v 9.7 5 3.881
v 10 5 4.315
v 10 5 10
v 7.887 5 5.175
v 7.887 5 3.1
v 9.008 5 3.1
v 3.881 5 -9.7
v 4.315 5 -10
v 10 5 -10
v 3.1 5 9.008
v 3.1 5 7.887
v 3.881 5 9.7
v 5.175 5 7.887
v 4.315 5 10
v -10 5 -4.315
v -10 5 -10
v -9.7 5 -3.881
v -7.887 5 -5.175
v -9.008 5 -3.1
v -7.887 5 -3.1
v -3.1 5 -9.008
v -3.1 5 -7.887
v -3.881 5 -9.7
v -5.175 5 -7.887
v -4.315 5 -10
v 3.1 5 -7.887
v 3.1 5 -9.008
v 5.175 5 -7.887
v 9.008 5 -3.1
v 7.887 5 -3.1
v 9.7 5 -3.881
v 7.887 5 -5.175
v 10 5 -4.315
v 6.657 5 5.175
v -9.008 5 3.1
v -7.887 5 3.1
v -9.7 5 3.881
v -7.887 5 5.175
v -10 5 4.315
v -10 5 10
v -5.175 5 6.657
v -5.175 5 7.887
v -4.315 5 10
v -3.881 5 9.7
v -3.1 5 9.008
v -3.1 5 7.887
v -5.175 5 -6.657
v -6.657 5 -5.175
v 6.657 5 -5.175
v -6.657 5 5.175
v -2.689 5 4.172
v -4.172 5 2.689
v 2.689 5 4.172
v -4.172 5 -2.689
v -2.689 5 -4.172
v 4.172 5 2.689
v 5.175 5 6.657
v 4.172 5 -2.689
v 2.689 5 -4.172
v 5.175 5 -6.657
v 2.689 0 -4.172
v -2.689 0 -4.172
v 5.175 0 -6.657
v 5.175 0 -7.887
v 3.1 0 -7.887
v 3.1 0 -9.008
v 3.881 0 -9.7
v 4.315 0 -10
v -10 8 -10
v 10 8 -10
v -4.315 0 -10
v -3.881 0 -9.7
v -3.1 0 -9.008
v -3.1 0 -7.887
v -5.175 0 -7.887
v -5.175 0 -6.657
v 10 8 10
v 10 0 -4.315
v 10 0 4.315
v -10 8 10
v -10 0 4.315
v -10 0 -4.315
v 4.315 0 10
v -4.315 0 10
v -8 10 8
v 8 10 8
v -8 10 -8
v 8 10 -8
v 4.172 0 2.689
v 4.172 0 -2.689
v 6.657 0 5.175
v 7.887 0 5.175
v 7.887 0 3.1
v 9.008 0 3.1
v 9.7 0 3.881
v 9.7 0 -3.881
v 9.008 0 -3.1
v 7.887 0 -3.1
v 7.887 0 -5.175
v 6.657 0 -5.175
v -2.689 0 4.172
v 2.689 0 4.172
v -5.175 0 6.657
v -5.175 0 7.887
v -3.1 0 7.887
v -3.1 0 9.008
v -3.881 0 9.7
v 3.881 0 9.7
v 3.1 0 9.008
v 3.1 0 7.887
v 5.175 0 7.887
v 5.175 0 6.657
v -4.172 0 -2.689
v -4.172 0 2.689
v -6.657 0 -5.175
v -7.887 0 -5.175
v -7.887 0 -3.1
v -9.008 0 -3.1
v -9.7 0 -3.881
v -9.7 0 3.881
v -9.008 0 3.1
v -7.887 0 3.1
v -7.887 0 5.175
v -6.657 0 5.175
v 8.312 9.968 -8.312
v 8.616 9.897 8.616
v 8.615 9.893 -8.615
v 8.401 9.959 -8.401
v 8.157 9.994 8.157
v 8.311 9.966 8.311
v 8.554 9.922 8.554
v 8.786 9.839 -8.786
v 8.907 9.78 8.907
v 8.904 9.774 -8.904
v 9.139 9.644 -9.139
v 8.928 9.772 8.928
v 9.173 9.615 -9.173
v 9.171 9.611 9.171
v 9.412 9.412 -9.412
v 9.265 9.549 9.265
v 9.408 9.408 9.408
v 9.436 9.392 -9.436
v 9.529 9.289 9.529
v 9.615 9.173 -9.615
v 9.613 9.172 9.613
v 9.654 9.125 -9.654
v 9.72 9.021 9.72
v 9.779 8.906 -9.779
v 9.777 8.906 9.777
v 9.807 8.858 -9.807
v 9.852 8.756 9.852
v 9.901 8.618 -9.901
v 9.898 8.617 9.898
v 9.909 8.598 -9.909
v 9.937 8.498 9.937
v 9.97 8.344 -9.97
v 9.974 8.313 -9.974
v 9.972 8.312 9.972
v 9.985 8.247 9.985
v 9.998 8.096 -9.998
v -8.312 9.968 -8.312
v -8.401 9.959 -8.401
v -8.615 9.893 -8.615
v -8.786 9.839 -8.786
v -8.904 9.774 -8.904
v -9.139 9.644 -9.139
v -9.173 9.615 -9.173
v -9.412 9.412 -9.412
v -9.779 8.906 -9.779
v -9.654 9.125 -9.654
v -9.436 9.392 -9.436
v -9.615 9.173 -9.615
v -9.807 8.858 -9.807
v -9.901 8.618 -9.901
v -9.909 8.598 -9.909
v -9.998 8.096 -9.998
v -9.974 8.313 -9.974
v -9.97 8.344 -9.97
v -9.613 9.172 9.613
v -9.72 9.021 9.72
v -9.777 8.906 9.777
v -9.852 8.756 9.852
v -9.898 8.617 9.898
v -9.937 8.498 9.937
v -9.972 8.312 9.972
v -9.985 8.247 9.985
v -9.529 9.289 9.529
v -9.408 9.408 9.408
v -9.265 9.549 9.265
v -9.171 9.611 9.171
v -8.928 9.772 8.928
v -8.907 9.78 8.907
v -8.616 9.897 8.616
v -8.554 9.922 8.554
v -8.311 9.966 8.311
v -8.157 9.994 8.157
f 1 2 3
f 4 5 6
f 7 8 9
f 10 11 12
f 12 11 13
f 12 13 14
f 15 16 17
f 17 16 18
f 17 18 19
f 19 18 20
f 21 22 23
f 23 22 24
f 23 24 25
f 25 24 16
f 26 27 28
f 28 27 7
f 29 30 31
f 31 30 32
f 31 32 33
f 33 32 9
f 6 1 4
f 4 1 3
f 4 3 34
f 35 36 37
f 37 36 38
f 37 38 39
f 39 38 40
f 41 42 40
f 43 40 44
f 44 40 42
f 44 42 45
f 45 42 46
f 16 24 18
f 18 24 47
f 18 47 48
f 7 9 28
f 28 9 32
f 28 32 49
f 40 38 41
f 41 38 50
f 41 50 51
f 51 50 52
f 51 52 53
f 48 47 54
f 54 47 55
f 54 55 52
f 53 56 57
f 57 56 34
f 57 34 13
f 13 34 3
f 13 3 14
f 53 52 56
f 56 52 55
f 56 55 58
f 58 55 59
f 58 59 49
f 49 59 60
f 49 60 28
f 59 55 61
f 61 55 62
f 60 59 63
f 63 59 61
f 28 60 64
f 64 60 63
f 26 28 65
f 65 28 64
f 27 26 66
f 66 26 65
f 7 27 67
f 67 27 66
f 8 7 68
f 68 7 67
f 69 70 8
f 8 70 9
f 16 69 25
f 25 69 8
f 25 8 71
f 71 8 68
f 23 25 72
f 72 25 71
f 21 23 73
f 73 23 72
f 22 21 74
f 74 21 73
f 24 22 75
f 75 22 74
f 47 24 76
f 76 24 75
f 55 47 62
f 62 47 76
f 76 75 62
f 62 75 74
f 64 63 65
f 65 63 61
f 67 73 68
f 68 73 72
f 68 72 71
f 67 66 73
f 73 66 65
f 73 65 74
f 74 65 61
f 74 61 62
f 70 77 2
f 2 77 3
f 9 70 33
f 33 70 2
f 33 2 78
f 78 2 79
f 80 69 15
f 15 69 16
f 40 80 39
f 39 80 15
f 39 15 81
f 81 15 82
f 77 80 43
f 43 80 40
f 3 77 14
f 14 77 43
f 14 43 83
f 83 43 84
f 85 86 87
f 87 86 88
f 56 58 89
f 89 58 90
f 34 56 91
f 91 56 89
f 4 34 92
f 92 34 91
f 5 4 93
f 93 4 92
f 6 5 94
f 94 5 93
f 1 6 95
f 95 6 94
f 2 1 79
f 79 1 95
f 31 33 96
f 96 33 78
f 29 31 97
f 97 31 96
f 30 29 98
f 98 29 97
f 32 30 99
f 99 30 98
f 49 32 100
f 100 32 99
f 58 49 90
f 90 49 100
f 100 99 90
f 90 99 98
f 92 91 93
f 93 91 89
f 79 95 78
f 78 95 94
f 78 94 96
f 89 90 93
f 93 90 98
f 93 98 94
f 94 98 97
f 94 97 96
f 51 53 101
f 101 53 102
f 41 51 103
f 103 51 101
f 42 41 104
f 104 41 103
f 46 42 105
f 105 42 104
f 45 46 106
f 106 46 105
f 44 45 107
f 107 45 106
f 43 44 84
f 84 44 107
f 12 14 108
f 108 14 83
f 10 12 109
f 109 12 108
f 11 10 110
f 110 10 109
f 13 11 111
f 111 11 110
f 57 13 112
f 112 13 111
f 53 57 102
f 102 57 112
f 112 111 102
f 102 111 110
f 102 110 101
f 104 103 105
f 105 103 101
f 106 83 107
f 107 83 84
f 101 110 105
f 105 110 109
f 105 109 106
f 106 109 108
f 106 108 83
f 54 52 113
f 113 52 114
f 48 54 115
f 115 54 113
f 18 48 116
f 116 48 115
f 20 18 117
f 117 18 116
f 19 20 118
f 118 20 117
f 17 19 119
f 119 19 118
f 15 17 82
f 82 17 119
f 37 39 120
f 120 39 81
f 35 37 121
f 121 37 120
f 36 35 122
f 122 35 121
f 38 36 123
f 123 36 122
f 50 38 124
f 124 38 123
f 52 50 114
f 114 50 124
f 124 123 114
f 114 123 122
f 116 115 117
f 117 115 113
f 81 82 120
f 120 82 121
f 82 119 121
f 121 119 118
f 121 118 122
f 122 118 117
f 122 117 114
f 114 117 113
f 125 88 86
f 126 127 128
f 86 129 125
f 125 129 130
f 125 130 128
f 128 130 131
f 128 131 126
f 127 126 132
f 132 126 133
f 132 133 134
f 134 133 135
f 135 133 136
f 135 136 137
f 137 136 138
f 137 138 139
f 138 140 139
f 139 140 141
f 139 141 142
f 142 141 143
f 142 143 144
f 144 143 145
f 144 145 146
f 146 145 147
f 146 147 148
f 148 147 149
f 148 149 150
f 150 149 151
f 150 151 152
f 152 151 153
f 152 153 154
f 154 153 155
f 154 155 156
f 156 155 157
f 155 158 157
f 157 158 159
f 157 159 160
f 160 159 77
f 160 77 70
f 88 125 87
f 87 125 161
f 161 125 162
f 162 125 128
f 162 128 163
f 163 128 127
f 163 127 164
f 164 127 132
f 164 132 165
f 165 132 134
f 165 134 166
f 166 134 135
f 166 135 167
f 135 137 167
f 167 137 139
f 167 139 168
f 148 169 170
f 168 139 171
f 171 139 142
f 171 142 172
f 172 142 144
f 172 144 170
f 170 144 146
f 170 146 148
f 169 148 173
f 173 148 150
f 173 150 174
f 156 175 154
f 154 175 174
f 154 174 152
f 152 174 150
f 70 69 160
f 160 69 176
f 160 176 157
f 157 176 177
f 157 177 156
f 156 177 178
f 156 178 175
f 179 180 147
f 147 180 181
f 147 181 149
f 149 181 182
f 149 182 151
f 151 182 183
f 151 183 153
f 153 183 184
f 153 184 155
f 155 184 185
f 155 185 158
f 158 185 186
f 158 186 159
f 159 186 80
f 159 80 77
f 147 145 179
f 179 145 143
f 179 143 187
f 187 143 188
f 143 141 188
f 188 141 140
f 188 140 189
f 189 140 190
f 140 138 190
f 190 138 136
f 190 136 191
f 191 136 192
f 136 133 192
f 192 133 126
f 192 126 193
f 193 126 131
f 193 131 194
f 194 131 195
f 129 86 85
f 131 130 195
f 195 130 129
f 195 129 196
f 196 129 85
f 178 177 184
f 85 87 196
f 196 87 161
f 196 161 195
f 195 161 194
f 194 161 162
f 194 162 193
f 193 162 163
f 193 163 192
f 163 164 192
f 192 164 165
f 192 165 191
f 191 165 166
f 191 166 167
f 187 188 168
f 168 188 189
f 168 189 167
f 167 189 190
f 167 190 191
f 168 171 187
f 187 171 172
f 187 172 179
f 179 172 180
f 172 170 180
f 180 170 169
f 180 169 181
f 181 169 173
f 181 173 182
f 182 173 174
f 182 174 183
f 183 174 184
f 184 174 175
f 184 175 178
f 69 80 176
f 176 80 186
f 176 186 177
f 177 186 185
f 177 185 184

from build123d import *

# Parameters (mm, degrees)
SALIENTE_EXTRUIR1_DEPTH   = 5
SALIENTE_EXTRUIR1_2_DEPTH = 5
SALIENTE_EXTRUIR1_3_DEPTH = 5
SALIENTE_EXTRUIR1_4_DEPTH = 5
CROQUIS3_W                = 20
CROQUIS3_H                = 20
SALIENTE_EXTRUIR2_DEPTH   = 5
REDONDEO1_R               = 2


with BuildPart() as part:
    # Croquis2 → Saliente-Extruir1 (new body)
    with BuildSketch(Plane(origin=(0, 0, 0), x_dir=(1, 0, 0), z_dir=(0, 1, 0))):
        Polygon((-3.880962474, 9.7), (-4.31520152, 10), (4.31520152, 10), (3.880962474, 9.7), (3.100109842, 9.007732001), (3.100109842, 7.886854264), (5.174607071, 7.886854264), (5.174607071, 6.657084853), (2.689193029, 4.171670811), (-2.689193029, 4.171670811), (-5.174607071, 6.657084853), (-5.174607071, 7.886854264), (-3.100109842, 7.886854264), (-3.100109842, 9.007732001), align=None)
    extrude(amount=SALIENTE_EXTRUIR1_DEPTH)



with BuildPart() as body_2:
    # Croquis2 → Saliente-Extruir1 2 (new body)
    with BuildSketch(Plane(origin=(0, 0, 0), x_dir=(1, 0, 0), z_dir=(0, 1, 0))):
        Polygon((10, 4.31520152), (10, -4.31520152), (9.7, -3.880962474), (9.007732001, -3.100109842), (7.886854264, -3.100109842), (7.886854264, -5.174607071), (6.657084853, -5.174607071), (4.171670811, -2.689193029), (4.171670811, 2.689193029), (6.657084853, 5.174607071), (7.886854264, 5.174607071), (7.886854264, 3.100109842), (9.007732001, 3.100109842), (9.7, 3.880962474), align=None)
    extrude(amount=SALIENTE_EXTRUIR1_2_DEPTH)


with BuildPart() as body_3:
    # Croquis2 → Saliente-Extruir1 3 (new body)
    with BuildSketch(Plane(origin=(0, 0, 0), x_dir=(1, 0, 0), z_dir=(0, 1, 0))):
        Polygon((4.31520152, -10), (-4.31520152, -10), (-3.880962474, -9.7), (-3.100109842, -9.007732001), (-3.100109842, -7.886854264), (-5.174607071, -7.886854264), (-5.174607071, -6.657084853), (-2.689193029, -4.171670811), (2.689193029, -4.171670811), (5.174607071, -6.657084853), (5.174607071, -7.886854264), (3.100109842, -7.886854264), (3.100109842, -9.007732001), (3.880962474, -9.7), align=None)
    extrude(amount=SALIENTE_EXTRUIR1_3_DEPTH)


with BuildPart() as body_4:
    # Croquis2 → Saliente-Extruir1 4 (new body)
    with BuildSketch(Plane(origin=(0, 0, 0), x_dir=(1, 0, 0), z_dir=(0, 1, 0))):
        Polygon((-10, -4.31520152), (-10, 4.31520152), (-9.7, 3.880962474), (-9.007732001, 3.100109842), (-7.886854264, 3.100109842), (-7.886854264, 5.174607071), (-6.657084853, 5.174607071), (-4.171670811, 2.689193029), (-4.171670811, -2.689193029), (-6.657084853, -5.174607071), (-7.886854264, -5.174607071), (-7.886854264, -3.100109842), (-9.007732001, -3.100109842), (-9.7, -3.880962474), align=None)
    extrude(amount=SALIENTE_EXTRUIR1_4_DEPTH)


with BuildPart() as part_1:
    add(part.part)

    add(body_2.part)  # Saliente-Extruir2 merges body 2

    add(body_3.part)  # Saliente-Extruir2 merges body 3

    add(body_4.part)  # Saliente-Extruir2 merges body 4
    # Croquis3 → Saliente-Extruir2 (add)
    with BuildSketch(Plane(origin=(0, 5, 0), x_dir=(1, 0, 0), z_dir=(0, 1, 0))):
        Rectangle(CROQUIS3_W, CROQUIS3_H)
    extrude(amount=SALIENTE_EXTRUIR2_DEPTH)

    # Redondeo1
    redondeo1_edges = [part_1.edges().sort_by_distance(p)[0] for p in [
        (10, 10, 0),
        (0, 10, -10),
        (-10, 10, 0),
        (0, 10, 10),
    ]]
    fillet(redondeo1_edges, radius=REDONDEO1_R)


solid = part_1.part
